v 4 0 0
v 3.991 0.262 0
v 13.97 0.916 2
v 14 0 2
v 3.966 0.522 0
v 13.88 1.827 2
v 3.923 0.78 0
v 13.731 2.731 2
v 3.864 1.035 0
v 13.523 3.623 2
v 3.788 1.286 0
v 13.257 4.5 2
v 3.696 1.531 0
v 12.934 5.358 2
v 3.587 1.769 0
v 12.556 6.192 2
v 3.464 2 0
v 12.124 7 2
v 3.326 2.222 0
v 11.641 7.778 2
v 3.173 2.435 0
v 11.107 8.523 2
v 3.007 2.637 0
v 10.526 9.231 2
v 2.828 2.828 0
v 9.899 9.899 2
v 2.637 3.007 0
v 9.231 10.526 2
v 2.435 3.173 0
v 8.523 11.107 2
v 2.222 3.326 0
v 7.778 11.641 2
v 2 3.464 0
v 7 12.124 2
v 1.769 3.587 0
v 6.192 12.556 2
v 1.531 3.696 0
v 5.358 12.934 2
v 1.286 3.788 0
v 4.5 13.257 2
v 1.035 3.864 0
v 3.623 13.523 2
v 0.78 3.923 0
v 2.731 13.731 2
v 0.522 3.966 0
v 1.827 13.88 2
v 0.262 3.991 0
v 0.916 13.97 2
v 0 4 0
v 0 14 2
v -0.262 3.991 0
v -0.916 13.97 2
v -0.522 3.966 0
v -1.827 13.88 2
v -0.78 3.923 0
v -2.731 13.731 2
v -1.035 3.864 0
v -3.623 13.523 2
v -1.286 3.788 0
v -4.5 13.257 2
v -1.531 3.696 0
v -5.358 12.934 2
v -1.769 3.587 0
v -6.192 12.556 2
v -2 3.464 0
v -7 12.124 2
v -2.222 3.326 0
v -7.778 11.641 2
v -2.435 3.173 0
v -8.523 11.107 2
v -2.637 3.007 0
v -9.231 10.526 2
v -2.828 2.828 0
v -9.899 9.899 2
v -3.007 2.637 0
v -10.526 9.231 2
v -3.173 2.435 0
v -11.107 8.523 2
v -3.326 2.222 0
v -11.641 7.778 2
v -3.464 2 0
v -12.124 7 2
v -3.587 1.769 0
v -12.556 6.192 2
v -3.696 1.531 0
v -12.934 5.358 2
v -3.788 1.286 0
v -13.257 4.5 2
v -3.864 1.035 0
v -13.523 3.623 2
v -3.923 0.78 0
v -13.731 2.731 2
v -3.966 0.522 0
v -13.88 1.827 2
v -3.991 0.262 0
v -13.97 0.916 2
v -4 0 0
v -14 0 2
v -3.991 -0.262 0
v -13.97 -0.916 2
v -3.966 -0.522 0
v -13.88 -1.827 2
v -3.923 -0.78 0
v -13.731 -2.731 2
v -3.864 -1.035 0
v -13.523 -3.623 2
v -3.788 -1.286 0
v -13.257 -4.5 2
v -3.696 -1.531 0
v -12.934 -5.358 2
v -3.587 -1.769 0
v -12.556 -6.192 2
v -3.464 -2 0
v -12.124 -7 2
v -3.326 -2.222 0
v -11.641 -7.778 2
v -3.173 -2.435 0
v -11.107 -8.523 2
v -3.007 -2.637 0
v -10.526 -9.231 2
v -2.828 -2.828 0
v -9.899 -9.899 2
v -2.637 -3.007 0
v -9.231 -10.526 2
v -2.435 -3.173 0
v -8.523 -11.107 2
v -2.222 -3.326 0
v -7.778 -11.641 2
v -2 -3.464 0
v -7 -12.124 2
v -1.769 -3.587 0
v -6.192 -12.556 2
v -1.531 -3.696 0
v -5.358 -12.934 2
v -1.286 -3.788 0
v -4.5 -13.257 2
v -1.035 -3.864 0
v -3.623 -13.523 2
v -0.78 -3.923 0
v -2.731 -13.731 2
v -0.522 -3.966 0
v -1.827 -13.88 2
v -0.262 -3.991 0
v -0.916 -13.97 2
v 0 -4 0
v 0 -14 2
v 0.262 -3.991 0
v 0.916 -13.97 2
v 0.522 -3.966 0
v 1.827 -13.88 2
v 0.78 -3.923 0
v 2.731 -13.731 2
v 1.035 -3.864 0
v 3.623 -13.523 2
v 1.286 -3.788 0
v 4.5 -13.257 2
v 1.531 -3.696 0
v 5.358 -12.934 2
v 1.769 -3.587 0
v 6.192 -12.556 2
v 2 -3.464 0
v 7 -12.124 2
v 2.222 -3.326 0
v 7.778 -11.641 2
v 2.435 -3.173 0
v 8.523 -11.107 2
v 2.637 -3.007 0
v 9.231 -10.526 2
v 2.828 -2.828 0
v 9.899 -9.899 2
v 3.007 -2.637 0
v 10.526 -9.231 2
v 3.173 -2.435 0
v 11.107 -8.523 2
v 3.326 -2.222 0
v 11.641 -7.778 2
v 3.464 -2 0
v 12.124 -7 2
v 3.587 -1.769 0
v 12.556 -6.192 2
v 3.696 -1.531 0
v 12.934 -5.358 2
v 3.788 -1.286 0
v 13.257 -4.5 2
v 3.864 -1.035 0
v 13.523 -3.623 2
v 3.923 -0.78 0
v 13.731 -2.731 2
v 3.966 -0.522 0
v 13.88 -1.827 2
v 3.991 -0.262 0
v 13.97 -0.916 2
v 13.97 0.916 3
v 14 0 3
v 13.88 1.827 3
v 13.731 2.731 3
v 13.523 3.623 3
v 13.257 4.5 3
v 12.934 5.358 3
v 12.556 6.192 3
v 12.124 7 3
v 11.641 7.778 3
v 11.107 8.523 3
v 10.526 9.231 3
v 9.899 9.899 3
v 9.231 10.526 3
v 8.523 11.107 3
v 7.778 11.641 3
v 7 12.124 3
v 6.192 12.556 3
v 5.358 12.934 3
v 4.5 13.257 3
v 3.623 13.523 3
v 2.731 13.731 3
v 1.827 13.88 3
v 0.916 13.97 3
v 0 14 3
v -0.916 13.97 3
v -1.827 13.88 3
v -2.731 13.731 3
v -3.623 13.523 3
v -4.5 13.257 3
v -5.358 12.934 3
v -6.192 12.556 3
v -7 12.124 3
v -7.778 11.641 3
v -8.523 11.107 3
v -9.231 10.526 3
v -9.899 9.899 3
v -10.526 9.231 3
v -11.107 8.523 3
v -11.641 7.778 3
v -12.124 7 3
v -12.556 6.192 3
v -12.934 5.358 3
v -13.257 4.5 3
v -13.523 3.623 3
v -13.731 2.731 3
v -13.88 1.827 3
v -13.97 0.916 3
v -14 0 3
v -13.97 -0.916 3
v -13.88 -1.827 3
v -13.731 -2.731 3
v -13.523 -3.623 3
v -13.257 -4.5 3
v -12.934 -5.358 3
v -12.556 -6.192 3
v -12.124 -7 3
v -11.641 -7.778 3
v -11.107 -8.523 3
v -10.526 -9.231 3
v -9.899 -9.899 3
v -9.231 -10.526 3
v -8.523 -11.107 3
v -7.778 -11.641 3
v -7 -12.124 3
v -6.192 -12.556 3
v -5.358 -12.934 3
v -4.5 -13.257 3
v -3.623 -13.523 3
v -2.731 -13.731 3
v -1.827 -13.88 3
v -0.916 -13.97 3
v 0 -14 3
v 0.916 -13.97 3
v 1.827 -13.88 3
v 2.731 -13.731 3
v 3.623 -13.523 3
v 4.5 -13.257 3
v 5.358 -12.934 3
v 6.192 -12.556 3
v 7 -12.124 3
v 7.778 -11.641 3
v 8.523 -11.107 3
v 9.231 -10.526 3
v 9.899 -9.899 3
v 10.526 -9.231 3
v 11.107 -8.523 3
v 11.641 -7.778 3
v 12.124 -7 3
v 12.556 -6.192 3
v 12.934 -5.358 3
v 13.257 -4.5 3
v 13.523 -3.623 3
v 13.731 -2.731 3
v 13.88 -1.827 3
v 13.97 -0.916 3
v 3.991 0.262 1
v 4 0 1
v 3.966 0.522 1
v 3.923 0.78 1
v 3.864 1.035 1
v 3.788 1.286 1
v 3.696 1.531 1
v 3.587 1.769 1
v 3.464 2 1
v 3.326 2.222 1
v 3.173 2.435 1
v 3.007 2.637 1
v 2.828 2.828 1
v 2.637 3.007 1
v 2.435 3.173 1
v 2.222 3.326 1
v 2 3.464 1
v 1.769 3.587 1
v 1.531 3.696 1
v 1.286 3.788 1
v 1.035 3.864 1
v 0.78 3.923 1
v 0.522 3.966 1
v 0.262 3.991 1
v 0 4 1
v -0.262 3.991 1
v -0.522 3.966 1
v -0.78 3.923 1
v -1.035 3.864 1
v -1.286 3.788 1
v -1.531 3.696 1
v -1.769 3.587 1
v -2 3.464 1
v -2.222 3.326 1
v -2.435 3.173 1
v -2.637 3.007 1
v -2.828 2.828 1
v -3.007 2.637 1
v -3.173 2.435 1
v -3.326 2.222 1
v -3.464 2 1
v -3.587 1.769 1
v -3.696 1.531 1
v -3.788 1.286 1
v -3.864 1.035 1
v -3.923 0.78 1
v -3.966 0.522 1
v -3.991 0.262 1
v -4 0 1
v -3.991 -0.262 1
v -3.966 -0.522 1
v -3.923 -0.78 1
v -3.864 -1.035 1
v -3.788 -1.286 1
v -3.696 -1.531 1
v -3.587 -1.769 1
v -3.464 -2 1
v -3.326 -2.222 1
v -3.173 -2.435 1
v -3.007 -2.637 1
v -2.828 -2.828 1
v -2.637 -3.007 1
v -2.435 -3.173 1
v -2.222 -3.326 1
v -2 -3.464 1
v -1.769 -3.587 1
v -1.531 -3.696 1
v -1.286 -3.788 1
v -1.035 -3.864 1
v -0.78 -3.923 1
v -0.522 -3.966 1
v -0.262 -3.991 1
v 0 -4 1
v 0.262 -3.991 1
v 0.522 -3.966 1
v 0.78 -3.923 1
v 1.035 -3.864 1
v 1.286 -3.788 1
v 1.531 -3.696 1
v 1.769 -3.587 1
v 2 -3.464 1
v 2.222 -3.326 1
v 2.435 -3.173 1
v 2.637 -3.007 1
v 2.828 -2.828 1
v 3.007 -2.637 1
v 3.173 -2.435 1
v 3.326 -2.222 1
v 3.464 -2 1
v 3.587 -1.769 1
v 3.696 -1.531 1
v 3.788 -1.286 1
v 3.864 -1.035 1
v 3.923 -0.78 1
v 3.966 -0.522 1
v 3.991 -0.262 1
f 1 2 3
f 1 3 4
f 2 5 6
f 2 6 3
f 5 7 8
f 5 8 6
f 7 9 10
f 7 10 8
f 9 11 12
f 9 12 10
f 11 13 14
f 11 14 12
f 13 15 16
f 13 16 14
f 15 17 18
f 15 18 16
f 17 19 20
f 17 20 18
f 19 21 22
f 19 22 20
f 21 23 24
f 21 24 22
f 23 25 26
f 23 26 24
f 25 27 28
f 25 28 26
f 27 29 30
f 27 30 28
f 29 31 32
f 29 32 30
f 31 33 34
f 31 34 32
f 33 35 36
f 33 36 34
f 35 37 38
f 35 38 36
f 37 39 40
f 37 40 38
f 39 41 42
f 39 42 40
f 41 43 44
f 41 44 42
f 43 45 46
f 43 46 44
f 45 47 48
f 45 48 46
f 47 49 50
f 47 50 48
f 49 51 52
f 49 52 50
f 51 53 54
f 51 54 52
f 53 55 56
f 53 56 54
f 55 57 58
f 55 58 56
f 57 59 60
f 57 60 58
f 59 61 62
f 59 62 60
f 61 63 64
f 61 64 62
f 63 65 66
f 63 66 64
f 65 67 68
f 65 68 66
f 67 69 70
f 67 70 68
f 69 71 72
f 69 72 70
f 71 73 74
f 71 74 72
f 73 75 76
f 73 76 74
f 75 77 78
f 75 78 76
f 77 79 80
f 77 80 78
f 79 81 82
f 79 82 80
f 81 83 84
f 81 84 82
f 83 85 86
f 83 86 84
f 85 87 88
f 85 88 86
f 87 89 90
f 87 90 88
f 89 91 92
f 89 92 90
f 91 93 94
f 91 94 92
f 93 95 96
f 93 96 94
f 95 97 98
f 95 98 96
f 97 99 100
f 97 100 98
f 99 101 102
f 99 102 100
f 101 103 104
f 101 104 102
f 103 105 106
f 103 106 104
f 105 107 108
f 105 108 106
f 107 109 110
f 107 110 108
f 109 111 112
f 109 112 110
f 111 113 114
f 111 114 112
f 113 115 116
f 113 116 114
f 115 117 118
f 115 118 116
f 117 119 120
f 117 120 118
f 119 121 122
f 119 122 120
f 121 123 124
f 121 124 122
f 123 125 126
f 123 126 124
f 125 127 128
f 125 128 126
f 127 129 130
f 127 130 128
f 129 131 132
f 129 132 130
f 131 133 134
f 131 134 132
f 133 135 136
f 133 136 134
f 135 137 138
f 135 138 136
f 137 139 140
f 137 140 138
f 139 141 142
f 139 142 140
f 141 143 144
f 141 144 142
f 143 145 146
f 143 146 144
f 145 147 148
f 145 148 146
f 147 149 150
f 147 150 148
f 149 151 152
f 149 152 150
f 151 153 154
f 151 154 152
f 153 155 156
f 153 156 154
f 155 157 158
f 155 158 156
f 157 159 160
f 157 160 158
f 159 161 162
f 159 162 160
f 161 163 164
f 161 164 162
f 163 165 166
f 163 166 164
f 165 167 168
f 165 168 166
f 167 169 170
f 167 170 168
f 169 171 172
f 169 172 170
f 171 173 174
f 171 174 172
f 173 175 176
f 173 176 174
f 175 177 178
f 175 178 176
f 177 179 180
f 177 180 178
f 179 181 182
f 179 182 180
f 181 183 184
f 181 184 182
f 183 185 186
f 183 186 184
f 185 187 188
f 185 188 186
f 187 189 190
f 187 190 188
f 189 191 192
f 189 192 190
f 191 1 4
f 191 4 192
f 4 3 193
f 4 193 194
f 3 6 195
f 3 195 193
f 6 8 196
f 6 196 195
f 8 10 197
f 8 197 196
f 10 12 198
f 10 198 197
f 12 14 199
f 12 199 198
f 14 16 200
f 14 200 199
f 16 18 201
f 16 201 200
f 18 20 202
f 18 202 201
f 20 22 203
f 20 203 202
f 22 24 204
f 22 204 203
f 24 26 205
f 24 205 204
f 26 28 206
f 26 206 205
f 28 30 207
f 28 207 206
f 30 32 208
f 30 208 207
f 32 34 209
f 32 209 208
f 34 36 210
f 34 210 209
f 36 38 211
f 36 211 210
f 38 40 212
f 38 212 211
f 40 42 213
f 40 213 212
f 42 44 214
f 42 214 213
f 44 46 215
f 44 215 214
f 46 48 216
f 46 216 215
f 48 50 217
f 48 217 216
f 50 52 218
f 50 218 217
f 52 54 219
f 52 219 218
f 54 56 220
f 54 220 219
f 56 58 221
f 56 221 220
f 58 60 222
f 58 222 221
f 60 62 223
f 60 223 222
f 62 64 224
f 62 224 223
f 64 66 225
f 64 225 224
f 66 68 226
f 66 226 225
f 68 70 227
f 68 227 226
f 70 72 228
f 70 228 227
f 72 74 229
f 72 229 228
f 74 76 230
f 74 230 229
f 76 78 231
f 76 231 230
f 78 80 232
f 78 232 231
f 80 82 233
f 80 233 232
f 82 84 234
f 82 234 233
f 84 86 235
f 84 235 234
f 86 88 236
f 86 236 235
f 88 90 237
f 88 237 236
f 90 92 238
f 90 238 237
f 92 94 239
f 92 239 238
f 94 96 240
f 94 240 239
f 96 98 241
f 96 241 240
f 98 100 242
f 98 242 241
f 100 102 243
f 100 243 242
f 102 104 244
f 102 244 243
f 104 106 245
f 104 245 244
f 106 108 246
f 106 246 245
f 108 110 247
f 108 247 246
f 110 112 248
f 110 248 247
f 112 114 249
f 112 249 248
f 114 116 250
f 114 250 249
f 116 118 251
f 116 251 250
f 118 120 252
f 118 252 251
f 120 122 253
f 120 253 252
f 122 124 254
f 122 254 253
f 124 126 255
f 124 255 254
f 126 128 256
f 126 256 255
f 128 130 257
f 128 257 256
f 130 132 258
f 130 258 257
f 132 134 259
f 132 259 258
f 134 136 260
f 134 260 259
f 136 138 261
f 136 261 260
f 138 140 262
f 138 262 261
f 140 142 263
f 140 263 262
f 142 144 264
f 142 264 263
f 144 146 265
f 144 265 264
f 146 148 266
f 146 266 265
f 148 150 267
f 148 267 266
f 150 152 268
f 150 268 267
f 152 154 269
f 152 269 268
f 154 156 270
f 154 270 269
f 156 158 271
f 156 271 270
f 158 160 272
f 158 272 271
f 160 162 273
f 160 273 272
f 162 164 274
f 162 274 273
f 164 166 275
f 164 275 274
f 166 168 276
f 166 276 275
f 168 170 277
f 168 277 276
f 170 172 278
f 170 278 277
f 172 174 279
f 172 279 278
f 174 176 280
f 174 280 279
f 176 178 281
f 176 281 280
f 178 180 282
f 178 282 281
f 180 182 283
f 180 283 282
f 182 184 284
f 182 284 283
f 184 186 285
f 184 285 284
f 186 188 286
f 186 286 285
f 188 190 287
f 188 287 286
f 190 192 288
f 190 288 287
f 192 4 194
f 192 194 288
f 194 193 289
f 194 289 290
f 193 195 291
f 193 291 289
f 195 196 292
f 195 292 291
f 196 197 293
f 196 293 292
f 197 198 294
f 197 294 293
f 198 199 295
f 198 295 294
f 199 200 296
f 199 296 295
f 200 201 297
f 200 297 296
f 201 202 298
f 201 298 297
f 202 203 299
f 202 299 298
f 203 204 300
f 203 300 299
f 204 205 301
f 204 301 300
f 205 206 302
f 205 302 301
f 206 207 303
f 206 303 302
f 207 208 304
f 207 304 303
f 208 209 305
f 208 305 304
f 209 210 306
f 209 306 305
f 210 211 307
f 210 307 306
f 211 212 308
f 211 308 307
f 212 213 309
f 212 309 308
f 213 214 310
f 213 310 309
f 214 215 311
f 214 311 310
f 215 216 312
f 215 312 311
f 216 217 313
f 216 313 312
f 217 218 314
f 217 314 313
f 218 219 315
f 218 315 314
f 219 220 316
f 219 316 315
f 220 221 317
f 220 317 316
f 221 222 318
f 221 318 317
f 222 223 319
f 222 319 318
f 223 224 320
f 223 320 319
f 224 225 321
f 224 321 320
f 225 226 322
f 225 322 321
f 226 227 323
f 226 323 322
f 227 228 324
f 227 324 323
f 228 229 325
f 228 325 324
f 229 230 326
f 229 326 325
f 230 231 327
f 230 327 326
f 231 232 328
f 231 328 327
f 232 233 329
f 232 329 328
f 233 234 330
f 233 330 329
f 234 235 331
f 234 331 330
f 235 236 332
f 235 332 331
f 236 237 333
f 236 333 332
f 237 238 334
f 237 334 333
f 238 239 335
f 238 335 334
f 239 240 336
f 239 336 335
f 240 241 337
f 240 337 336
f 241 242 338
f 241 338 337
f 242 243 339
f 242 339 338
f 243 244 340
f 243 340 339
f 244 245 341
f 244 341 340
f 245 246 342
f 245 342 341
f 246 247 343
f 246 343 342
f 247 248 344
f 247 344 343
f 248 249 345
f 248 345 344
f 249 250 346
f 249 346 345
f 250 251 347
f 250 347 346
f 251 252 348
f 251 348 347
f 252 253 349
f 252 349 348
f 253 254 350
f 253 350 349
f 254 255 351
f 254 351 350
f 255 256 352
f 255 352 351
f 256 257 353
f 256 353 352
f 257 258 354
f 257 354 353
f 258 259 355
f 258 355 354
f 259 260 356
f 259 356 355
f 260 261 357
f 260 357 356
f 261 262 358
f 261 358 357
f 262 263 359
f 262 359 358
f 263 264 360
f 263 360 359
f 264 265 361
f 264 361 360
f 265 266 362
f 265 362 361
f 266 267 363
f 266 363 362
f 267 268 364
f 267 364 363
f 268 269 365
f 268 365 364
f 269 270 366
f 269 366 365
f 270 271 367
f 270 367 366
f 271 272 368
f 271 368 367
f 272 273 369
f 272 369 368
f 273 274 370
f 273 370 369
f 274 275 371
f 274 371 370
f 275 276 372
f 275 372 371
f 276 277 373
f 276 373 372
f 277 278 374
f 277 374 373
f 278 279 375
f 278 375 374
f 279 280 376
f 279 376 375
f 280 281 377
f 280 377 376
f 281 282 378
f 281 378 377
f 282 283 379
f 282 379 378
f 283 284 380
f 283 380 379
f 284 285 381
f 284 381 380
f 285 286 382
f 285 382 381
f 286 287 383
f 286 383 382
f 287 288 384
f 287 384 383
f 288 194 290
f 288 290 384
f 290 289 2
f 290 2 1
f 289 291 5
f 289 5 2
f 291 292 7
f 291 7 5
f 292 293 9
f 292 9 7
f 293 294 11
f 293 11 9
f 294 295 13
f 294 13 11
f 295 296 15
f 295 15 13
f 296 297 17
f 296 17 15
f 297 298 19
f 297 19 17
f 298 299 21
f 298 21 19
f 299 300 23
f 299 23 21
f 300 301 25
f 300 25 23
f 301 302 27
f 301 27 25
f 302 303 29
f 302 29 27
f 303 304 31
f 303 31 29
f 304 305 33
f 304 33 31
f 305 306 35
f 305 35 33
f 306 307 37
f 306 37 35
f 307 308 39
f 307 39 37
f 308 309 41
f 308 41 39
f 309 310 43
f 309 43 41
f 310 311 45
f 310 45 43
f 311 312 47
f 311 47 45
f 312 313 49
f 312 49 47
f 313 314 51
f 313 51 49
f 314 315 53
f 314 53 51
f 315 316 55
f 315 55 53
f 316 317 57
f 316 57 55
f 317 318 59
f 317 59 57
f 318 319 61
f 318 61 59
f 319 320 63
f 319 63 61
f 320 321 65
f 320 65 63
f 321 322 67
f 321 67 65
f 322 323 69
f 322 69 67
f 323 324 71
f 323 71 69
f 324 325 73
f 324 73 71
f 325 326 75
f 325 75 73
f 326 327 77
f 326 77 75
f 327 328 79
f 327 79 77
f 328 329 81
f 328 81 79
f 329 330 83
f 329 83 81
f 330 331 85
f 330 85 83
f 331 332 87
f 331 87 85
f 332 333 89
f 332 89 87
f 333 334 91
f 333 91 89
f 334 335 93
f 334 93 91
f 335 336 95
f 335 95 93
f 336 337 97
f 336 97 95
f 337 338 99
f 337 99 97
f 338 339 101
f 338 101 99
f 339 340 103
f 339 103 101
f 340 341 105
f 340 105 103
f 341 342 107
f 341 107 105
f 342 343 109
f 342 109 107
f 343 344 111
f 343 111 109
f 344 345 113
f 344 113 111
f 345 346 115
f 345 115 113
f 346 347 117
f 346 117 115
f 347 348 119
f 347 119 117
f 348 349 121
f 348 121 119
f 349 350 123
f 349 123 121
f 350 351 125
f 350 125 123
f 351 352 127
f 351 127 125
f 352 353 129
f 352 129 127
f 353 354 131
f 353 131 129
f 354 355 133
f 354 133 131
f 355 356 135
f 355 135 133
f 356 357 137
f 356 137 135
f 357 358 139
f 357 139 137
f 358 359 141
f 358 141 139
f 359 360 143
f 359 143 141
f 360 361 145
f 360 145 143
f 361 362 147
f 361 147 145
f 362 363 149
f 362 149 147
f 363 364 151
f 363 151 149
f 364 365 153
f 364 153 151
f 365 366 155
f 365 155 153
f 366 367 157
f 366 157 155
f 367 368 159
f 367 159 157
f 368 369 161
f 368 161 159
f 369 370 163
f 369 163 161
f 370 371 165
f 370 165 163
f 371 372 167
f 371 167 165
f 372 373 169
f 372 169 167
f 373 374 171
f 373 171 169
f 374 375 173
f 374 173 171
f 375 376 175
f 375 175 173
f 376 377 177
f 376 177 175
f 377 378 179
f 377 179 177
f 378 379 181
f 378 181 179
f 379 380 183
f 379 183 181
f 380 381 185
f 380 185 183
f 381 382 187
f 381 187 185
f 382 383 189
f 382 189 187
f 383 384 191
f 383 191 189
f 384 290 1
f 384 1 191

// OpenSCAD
// Original MechIntel educational model. CC0-1.0. Units: mm.
// Not a standardized or load-rated component.
$fn=96;
// Section points: [radius, height], mm. Edit to change the profile.
section=[[4, 0], [14, 2], [14, 3], [4, 1]];
rotate_extrude($fn=96) polygon(points=section);
